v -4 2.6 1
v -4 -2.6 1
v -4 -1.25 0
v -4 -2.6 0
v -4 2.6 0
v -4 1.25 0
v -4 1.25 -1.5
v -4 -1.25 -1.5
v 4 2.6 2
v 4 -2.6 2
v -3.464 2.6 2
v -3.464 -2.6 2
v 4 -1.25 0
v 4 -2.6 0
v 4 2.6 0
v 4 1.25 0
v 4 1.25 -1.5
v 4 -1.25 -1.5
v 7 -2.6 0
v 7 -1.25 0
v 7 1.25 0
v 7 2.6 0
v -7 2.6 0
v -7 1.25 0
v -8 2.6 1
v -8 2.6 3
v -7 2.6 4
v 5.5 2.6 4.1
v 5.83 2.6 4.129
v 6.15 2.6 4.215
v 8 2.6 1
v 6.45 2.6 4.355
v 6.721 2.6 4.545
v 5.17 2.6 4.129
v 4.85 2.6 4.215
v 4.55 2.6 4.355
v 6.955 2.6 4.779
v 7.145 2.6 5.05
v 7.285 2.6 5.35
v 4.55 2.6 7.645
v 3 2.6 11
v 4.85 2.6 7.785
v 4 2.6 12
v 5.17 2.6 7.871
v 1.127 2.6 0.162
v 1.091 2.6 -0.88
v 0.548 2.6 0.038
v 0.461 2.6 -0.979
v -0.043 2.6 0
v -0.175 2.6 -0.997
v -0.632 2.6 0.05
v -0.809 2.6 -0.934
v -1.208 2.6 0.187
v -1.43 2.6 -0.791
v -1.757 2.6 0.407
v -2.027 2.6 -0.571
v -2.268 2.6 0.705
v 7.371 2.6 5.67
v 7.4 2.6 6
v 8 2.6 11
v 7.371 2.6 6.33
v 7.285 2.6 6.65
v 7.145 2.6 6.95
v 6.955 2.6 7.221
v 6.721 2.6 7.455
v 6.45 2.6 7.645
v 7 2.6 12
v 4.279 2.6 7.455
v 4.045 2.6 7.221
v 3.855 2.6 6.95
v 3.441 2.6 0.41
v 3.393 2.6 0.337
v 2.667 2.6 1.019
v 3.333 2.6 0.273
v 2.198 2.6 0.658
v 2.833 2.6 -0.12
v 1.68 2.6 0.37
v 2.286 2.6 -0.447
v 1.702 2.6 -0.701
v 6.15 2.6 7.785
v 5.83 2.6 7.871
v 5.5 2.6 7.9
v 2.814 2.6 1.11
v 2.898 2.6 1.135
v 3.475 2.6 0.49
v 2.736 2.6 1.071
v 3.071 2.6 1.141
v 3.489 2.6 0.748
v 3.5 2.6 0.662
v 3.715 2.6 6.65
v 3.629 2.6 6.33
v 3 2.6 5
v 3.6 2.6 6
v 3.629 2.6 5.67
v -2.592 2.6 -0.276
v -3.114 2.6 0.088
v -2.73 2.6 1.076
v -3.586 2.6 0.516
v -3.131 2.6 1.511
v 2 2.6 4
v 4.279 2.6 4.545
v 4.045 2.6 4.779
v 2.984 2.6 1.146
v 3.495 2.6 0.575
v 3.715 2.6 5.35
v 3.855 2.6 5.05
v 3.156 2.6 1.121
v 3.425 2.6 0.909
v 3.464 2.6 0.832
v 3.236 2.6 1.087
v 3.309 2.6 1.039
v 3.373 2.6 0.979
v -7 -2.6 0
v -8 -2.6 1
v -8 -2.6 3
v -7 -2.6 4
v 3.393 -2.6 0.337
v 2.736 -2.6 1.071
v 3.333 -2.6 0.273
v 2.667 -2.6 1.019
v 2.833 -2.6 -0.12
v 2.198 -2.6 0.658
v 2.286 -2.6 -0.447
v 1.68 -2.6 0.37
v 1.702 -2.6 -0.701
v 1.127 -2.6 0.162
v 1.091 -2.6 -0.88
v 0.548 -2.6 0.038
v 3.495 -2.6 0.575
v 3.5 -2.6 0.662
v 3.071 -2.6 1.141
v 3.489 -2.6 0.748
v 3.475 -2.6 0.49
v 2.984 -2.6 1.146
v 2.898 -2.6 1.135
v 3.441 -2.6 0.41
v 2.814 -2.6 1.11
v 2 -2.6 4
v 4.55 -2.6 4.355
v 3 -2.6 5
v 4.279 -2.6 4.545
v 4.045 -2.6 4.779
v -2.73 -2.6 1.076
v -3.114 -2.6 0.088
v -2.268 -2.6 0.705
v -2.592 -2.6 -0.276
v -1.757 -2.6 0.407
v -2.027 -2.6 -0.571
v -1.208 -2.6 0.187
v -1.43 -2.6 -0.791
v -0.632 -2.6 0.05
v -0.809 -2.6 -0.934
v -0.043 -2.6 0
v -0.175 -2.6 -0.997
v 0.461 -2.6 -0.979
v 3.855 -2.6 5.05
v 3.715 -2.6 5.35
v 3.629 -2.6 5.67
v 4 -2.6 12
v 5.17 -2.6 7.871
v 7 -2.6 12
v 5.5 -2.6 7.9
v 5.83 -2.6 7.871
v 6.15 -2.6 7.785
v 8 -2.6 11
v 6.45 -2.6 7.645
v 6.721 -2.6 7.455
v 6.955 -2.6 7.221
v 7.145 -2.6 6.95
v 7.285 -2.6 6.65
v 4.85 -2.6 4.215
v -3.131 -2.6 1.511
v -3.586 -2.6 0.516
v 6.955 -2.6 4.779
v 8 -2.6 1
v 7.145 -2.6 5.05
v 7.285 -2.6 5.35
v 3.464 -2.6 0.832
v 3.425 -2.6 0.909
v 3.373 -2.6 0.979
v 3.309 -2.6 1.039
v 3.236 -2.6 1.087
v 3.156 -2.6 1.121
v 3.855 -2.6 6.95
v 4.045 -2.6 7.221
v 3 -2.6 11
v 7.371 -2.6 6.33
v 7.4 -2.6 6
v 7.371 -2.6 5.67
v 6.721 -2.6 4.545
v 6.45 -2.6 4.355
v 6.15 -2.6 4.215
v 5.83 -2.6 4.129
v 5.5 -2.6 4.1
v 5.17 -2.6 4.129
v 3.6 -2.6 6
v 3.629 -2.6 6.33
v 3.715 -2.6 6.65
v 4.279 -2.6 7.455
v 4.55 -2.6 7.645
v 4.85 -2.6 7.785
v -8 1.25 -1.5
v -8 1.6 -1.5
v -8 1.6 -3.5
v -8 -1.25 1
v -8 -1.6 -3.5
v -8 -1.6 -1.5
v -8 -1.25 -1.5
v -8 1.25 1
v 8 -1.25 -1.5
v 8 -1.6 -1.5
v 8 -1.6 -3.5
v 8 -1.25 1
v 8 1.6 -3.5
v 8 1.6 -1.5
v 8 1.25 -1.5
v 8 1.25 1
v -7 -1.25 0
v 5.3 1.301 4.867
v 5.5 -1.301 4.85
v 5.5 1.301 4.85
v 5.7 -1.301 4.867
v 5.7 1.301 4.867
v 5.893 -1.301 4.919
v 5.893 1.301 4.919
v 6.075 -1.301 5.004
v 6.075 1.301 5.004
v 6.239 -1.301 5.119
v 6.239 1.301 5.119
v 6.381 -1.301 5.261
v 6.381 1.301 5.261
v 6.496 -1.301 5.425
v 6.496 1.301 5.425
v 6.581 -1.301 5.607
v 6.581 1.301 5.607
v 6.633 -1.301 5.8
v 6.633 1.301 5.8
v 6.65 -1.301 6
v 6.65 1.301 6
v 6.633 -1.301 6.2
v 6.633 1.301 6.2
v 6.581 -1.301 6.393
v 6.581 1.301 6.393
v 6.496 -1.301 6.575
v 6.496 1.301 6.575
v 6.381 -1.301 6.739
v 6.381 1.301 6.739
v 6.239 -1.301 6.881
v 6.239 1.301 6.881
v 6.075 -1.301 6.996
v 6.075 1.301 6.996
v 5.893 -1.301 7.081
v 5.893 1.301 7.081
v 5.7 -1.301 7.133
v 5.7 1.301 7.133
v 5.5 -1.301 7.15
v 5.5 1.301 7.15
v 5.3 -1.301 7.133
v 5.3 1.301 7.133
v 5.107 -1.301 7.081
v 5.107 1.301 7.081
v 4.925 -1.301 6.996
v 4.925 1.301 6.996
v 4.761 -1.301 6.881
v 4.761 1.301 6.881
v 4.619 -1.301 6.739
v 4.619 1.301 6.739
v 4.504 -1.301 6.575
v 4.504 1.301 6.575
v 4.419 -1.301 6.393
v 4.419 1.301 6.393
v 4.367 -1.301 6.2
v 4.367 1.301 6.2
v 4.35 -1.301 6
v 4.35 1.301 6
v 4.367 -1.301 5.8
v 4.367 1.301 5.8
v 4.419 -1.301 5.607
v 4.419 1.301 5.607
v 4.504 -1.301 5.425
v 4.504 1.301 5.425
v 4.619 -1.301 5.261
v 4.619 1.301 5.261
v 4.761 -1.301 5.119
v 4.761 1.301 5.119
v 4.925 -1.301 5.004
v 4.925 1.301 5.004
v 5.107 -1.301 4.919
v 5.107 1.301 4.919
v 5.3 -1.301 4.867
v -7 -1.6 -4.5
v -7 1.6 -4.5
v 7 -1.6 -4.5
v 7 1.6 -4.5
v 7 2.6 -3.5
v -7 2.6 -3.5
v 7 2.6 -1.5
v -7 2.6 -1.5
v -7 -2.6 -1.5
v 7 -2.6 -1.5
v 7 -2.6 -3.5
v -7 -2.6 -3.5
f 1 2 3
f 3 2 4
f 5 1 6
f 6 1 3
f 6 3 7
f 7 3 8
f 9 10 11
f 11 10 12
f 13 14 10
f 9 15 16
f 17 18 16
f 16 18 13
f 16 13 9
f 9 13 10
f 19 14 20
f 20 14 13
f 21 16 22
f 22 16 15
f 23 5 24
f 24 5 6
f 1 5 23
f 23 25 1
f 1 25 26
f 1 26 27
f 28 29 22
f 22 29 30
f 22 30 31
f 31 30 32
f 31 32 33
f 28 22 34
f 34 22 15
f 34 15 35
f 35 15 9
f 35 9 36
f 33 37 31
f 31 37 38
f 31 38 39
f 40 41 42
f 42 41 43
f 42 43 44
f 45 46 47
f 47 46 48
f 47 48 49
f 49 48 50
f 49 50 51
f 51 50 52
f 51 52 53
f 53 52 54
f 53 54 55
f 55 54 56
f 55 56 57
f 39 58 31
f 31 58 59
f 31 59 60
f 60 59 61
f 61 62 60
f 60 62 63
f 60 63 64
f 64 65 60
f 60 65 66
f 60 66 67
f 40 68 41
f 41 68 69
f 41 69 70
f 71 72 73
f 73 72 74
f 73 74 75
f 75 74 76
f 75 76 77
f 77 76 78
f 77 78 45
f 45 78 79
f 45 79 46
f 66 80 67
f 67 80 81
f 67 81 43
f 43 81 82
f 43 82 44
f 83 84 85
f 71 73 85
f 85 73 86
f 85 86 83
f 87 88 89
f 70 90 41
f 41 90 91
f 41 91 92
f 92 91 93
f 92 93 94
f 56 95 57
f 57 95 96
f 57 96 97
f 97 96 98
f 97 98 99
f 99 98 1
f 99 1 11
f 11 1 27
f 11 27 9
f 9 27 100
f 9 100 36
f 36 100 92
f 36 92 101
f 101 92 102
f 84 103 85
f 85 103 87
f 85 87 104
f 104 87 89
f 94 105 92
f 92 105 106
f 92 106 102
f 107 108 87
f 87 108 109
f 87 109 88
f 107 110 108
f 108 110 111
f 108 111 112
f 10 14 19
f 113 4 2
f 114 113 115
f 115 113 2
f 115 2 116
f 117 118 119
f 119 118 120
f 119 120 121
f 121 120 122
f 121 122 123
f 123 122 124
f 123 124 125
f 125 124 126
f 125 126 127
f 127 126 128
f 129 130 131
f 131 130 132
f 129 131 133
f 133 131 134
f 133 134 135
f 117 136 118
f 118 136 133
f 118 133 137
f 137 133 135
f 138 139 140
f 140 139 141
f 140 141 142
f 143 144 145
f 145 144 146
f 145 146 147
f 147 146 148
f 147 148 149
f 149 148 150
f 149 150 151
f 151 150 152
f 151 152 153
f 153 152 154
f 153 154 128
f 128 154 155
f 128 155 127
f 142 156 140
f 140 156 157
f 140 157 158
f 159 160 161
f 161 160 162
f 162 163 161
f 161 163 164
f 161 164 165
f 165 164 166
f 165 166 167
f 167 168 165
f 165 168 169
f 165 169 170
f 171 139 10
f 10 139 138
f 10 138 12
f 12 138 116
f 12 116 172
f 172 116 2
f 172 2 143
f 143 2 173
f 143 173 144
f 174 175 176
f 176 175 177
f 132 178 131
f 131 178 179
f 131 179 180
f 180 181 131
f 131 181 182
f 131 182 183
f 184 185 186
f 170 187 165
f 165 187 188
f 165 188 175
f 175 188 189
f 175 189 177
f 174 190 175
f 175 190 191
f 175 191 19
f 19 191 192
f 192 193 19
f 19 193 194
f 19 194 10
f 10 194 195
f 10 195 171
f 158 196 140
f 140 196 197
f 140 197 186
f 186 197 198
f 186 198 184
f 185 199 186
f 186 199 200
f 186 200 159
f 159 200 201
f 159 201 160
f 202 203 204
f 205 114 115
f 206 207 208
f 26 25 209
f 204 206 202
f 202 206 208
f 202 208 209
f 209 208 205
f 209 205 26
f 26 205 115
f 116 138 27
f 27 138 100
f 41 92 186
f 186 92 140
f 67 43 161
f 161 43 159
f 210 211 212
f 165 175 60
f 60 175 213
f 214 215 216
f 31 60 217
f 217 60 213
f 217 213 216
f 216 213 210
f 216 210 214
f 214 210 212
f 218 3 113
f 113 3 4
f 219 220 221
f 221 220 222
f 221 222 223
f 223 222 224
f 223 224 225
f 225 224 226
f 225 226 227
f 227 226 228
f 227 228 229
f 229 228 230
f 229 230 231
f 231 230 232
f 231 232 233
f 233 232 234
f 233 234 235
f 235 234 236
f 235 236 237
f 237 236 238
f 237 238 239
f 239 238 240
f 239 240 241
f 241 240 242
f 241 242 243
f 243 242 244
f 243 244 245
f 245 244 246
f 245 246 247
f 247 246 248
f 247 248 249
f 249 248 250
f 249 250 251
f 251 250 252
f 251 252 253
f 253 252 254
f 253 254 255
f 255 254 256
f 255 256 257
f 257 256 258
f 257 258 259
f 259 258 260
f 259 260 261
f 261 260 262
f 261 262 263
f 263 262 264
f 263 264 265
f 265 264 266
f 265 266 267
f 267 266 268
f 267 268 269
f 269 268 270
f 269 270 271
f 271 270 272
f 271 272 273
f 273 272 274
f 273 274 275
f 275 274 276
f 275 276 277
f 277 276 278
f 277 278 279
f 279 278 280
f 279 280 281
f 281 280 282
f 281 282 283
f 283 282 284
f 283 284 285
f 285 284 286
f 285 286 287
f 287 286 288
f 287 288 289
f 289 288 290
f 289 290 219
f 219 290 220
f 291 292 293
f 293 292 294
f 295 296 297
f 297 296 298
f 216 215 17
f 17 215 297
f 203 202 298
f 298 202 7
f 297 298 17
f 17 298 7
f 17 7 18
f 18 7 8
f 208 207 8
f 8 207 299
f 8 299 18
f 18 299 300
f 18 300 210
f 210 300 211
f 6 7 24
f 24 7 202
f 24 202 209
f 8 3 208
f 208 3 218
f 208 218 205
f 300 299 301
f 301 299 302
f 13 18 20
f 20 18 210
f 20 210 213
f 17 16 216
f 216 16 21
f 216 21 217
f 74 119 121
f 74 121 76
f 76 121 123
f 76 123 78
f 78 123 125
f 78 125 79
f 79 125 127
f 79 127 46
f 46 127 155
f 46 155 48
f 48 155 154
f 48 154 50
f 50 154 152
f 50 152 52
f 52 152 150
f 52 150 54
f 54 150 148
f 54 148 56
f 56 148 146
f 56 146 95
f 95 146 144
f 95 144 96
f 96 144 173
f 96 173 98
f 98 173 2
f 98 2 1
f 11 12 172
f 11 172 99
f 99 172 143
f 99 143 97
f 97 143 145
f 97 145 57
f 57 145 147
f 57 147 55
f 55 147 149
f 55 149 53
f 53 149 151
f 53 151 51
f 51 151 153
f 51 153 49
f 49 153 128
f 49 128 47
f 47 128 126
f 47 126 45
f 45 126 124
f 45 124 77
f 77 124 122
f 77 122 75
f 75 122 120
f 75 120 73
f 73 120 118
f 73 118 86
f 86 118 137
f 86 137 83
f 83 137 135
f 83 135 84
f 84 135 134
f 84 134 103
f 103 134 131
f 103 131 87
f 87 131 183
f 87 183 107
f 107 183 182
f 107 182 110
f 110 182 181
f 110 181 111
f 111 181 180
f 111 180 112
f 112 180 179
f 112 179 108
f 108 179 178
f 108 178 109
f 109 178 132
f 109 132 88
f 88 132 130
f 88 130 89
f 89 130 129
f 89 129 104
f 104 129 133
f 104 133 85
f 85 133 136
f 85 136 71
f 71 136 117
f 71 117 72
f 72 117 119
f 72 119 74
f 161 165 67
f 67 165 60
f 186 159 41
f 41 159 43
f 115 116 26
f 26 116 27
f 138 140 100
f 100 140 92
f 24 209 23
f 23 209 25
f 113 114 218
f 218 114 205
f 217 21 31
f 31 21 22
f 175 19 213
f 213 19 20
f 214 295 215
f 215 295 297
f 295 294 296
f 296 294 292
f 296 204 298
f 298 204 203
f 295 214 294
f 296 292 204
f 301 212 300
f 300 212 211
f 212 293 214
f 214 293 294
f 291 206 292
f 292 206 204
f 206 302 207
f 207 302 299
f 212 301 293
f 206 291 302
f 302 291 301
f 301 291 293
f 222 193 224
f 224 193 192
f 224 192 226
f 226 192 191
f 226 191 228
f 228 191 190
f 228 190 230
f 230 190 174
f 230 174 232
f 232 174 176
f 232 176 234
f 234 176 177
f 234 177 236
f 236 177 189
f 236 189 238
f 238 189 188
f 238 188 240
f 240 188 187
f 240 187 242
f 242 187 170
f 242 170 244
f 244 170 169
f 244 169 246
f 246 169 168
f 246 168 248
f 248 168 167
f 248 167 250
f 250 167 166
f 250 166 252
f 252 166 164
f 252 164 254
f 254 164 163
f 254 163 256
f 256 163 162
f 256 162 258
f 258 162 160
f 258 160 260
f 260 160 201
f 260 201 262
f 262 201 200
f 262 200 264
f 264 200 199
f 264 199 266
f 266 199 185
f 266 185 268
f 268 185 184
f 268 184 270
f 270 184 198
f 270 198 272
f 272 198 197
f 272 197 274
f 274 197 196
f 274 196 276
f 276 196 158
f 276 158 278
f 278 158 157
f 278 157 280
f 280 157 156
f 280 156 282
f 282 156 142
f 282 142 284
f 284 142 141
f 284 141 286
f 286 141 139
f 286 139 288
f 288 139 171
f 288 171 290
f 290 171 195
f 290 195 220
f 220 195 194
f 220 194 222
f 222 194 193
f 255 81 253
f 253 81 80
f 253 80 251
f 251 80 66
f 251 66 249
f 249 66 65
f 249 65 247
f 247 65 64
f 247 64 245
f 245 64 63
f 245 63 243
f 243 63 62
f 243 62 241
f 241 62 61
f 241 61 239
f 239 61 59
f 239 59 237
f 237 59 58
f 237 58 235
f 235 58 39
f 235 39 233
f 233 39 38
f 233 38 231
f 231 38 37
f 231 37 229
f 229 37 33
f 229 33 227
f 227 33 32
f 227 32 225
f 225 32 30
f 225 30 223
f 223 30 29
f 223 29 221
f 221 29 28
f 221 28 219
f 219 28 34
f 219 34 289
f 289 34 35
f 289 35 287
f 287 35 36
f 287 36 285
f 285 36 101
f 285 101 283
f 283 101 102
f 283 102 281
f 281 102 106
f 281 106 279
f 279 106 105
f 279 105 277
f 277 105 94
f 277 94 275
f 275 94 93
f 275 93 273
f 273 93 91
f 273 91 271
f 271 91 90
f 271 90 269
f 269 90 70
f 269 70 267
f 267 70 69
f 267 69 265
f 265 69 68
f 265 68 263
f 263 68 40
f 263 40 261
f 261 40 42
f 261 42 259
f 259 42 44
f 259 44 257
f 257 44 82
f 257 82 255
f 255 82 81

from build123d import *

# Parameters (mm, degrees)
SKETCH1_R             = 1.15
BOSS_EXTRUDE1_DEPTH   = 2.6
BOSS_EXTRUDE2_DEPTH   = 4
SKETCH3_W             = 3
SKETCH3_H             = 5.2
BOSS_EXTRUDE3_DEPTH   = 8
BOSS_EXTRUDE4_DEPTH   = 2.6
CHAMFER1_SIZE         = 1
CHAMFER2_SIZE         = 0.75
CHAMFER2_SIZE2        = 1.299038106
CHAMFER2_PART_2_SIZE  = 0.75
CHAMFER2_PART_2_SIZE2 = 1.299038106


with BuildPart() as part:
    # Sketch1 → Boss-Extrude1 (new body, symmetric)
    with BuildSketch(Plane(origin=(0, 0, 0), x_dir=(1, 0, 0), z_dir=(0, 1, 0))):
        Polygon((4, 0), (8, 0), (8, -12), (3, -12), (3, -4), (-8, -4), (-8, 0), (-4, 0), (-4, -2), (4, -2), align=None)
        with Locations((5.5, -6)):
            Circle(SKETCH1_R, mode=Mode.SUBTRACT)
    extrude(amount=BOSS_EXTRUDE1_DEPTH, both=True)

    # Sketch2 → Boss-Extrude2 (add)
    with BuildSketch(Plane.ZY.offset(8)):
        Polygon((-1.5, -1.25), (-1.5, -2.6), (-4.5, -2.6), (-4.5, 2.6), (-1.5, 2.6), (-1.5, 1.25), (0, 1.25), (0, -1.25), align=None)
    boss_extrude2 = extrude(amount=-BOSS_EXTRUDE2_DEPTH)

    # Mirror1: Boss-Extrude2 across plane
    add(boss_extrude2.mirror(Plane(origin=(0, 0, 0), x_dir=(0, 0, 1), z_dir=(1, 0, 0))))

    # Sketch3 → Boss-Extrude3 (add)
    with BuildSketch(Plane(origin=(-4, 0, 0), x_dir=(0, 0, -1), z_dir=(1, 0, 0))):
        with Locations((3, 0)):
            Rectangle(SKETCH3_W, SKETCH3_H)
    extrude(amount=BOSS_EXTRUDE3_DEPTH)

    # Sketch4 → Boss-Extrude4 (add, symmetric)
    with BuildSketch(Plane(origin=(0, 0, 0), x_dir=(1, 0, 0), z_dir=(0, 1, 0))):
        with BuildLine():
            Line((-4, -1), (-4, -2))
            Line((-4, -2), (-3.464101615, -2))
            ThreePointArc((-3.464101615, -2), (-0.63227674, -0.050287843), (2.666666667, -1.01857603))
            ThreePointArc((2.666666667, -1.01857603), (3.372677996, -0.979231367), (3.333333333, -0.273220038))
            ThreePointArc((3.333333333, -0.273220038), (-0.493116, 0.975624243), (-4, -1))
        make_face()
    extrude(amount=BOSS_EXTRUDE4_DEPTH, both=True)

    # Chamfer1
    chamfer1_edges = [part.edges().sort_by_distance(p)[0] for p in [
        (-8, 1.925, 0),
        (8, 1.925, 0),
        (8, 0, 12),
        (3, 0, 12),
        (3, 0, 4),
        (-8, 0, 4),
        (-8, -1.925, 0),
        (0, -2.6, -4.5),
        (0, 2.6, -4.5),
        (-8, 0, -4.5),
        (-8, -2.6, -3),
        (-8, 2.6, -3),
        (8, -1.925, 0),
        (8, 0, -4.5),
        (8, -2.6, -3),
        (8, 2.6, -3),
    ]]
    chamfer(chamfer1_edges, length=CHAMFER1_SIZE)

    # Chamfer2
    chamfer2_edges = [part.edges().sort_by_distance(p)[0] for p in [
        (4.35, -2.6, 6),
    ]]
    chamfer2_side = [part.faces().sort_by_distance(p)[0] for p in [
        (5.5, -2.6, 0.206155281),
    ]]
    chamfer(chamfer2_edges, length=CHAMFER2_SIZE, length2=CHAMFER2_SIZE2, reference=chamfer2_side[0])

    # Chamfer2 part 2
    chamfer2_part_2_edges = [part.edges().sort_by_distance(p)[0] for p in [
        (4.35, 2.6, 6),
    ]]
    chamfer2_part_2_side = [part.faces().sort_by_distance(p)[0] for p in [
        (5.5, 2.6, 0.206155281),
    ]]
    chamfer(chamfer2_part_2_edges, length=CHAMFER2_PART_2_SIZE, length2=CHAMFER2_PART_2_SIZE2, reference=chamfer2_part_2_side[0])


solid = part.part
